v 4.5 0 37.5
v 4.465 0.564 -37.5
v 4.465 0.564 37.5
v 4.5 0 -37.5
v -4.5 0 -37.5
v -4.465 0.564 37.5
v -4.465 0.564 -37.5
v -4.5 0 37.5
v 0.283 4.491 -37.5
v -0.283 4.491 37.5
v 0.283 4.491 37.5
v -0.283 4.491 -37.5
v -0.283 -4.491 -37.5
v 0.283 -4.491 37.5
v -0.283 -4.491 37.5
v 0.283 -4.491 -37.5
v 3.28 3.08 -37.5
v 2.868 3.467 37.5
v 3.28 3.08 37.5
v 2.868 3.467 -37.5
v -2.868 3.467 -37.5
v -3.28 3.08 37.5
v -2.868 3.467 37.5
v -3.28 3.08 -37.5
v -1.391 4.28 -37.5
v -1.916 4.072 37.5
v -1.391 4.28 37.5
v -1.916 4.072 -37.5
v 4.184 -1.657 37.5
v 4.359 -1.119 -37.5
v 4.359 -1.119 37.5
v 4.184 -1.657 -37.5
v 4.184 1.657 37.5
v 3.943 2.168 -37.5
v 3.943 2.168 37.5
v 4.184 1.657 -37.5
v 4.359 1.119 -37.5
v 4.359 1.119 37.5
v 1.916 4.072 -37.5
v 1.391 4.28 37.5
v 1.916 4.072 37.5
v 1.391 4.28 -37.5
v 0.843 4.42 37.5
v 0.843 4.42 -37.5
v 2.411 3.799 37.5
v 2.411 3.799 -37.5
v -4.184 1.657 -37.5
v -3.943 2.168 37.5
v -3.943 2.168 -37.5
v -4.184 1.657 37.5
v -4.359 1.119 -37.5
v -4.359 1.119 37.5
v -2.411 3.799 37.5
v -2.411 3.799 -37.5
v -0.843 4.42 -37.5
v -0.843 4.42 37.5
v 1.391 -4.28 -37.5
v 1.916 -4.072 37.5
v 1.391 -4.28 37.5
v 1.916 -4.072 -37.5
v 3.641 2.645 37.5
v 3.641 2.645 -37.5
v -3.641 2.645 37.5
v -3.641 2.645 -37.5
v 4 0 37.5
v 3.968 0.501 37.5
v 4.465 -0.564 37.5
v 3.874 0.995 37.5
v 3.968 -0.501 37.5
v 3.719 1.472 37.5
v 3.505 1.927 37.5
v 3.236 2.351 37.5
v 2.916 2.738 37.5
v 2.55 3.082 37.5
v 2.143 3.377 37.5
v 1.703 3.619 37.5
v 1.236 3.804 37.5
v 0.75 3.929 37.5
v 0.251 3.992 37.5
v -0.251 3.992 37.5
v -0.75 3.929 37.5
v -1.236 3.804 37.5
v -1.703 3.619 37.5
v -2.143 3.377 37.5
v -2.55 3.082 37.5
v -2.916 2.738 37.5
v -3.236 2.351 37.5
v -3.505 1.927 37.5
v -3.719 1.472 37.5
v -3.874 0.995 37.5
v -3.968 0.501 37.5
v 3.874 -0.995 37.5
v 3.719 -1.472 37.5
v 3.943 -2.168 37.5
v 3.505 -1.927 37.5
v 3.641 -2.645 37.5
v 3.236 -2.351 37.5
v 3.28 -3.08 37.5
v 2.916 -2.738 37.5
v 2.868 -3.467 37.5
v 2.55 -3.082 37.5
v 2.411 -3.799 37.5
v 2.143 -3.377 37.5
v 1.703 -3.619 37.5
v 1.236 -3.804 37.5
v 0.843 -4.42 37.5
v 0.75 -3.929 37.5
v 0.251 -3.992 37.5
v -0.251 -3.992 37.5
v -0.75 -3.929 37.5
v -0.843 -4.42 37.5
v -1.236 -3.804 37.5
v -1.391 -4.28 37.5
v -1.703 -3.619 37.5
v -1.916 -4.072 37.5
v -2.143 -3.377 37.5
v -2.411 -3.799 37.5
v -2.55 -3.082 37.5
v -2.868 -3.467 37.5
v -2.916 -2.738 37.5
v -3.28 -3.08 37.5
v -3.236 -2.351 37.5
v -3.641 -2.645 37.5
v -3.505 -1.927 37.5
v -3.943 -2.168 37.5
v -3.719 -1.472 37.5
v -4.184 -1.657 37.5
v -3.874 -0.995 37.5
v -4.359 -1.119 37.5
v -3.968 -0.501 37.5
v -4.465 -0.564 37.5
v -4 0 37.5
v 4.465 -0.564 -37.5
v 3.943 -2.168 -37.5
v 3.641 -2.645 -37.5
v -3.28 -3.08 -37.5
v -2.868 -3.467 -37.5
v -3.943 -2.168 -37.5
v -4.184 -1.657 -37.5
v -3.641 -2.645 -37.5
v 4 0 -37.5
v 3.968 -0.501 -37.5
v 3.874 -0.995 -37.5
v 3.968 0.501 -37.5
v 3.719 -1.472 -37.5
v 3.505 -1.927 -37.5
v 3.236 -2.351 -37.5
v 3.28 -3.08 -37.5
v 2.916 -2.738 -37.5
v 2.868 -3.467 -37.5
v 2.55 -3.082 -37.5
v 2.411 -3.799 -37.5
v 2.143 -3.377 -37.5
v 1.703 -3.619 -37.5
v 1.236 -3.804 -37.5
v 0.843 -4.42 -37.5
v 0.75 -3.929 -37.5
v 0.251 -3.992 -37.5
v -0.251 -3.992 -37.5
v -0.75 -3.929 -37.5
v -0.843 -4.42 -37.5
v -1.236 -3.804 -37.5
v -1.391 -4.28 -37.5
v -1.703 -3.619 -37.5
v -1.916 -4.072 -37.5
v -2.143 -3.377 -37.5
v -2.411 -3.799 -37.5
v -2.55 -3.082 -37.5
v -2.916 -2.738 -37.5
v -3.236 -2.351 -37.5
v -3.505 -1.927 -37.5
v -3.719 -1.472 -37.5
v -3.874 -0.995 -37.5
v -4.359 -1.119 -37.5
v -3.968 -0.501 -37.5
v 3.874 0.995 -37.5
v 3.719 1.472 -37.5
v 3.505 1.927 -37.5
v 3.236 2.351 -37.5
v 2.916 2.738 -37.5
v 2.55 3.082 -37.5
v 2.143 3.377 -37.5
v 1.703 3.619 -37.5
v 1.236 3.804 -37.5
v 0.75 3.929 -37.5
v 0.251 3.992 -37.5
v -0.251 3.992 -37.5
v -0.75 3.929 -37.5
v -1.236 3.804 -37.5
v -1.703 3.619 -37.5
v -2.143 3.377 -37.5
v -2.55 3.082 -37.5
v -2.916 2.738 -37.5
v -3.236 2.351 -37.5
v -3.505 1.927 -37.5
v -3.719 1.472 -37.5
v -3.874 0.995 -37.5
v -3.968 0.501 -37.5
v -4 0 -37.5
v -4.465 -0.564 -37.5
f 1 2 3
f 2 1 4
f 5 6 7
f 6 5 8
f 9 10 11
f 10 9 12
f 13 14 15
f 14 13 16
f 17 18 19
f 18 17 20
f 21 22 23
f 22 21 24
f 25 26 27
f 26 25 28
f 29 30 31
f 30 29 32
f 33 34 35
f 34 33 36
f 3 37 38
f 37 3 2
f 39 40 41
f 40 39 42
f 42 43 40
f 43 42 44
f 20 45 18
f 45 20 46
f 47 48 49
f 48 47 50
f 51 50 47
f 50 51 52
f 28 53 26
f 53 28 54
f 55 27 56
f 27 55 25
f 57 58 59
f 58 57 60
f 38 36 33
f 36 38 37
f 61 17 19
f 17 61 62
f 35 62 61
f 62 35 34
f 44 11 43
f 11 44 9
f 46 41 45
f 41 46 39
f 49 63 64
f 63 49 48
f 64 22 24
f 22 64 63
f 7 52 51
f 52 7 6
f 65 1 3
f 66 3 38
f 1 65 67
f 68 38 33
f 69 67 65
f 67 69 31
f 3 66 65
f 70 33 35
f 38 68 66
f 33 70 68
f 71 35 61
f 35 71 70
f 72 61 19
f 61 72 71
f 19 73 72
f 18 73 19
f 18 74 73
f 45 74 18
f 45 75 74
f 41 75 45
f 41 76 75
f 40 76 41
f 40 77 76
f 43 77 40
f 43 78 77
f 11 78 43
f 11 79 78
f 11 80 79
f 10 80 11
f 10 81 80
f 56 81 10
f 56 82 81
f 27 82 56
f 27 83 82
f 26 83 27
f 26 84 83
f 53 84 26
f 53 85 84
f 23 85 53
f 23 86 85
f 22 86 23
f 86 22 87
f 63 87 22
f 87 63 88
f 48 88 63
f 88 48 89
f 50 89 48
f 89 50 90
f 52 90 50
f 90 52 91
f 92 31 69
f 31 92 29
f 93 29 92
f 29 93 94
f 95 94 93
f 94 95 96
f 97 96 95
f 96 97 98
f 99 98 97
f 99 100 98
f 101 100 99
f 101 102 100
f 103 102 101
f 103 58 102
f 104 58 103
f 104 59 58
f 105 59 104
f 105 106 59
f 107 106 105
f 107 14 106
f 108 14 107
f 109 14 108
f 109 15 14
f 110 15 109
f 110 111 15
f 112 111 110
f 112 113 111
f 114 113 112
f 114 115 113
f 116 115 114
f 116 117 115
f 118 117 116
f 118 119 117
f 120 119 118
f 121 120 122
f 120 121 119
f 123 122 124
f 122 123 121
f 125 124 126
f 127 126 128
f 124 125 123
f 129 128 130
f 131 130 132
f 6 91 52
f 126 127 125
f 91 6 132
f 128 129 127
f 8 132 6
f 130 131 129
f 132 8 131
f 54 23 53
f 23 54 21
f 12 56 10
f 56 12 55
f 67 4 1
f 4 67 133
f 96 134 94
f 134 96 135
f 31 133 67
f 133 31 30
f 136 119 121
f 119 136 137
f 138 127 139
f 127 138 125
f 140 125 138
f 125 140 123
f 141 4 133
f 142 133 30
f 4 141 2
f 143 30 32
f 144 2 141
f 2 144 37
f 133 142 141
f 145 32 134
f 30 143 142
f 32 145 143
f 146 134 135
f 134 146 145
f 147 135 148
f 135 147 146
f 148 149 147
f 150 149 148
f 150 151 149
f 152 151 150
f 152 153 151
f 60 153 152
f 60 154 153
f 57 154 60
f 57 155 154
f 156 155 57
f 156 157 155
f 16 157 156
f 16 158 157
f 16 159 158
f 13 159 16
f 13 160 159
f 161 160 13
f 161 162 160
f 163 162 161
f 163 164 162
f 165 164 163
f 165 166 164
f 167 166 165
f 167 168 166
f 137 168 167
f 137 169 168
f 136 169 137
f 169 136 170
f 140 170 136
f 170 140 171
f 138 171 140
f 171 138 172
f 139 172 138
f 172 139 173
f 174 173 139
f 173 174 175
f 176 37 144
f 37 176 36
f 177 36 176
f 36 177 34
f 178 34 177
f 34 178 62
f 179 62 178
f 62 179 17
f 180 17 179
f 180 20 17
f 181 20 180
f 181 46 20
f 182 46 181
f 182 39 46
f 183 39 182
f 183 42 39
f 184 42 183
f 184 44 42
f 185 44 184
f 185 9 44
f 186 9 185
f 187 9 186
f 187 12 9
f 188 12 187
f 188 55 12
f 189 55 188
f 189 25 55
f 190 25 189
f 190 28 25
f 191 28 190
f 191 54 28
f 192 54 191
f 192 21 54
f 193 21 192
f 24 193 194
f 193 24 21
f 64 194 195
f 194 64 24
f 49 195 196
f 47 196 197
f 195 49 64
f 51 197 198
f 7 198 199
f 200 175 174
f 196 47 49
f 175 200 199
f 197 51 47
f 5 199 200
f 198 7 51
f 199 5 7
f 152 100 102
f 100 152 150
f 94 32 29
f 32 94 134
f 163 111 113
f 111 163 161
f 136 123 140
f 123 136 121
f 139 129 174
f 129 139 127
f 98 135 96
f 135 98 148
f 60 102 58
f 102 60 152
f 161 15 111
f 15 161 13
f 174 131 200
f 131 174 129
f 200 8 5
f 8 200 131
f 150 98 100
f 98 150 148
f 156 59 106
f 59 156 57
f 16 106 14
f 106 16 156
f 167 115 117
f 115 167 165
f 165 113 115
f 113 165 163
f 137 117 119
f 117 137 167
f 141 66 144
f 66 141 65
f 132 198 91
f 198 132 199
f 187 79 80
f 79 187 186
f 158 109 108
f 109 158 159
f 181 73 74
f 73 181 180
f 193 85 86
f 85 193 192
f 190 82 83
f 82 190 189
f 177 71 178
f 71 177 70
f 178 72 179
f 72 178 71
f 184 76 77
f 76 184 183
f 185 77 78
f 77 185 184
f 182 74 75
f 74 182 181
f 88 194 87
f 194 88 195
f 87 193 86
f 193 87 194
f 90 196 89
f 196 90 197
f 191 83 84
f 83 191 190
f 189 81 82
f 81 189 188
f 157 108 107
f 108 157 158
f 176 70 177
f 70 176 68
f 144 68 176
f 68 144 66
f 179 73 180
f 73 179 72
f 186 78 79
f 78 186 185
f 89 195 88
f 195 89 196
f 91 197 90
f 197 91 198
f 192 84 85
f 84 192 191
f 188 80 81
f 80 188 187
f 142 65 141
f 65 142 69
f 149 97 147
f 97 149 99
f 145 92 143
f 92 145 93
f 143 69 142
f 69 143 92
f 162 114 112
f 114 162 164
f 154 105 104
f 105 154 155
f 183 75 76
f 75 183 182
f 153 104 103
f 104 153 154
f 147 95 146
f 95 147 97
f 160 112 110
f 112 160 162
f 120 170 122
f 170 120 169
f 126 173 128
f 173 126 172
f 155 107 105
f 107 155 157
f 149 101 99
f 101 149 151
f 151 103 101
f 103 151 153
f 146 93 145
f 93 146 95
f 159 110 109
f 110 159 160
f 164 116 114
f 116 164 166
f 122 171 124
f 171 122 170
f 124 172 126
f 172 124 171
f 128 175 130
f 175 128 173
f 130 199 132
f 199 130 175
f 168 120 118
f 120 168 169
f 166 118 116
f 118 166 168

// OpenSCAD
$fn = 50;


difference() {
	union() {
		translate(v = [0, 0, -37.5000000000]) {
			cylinder(h = 75, r = 4.5000000000);
		}
	}
	union() {
		translate(v = [0, 0, -100.0000000000]) {
			cylinder(h = 200, r = 4.0000000000);
		}
	}
}
